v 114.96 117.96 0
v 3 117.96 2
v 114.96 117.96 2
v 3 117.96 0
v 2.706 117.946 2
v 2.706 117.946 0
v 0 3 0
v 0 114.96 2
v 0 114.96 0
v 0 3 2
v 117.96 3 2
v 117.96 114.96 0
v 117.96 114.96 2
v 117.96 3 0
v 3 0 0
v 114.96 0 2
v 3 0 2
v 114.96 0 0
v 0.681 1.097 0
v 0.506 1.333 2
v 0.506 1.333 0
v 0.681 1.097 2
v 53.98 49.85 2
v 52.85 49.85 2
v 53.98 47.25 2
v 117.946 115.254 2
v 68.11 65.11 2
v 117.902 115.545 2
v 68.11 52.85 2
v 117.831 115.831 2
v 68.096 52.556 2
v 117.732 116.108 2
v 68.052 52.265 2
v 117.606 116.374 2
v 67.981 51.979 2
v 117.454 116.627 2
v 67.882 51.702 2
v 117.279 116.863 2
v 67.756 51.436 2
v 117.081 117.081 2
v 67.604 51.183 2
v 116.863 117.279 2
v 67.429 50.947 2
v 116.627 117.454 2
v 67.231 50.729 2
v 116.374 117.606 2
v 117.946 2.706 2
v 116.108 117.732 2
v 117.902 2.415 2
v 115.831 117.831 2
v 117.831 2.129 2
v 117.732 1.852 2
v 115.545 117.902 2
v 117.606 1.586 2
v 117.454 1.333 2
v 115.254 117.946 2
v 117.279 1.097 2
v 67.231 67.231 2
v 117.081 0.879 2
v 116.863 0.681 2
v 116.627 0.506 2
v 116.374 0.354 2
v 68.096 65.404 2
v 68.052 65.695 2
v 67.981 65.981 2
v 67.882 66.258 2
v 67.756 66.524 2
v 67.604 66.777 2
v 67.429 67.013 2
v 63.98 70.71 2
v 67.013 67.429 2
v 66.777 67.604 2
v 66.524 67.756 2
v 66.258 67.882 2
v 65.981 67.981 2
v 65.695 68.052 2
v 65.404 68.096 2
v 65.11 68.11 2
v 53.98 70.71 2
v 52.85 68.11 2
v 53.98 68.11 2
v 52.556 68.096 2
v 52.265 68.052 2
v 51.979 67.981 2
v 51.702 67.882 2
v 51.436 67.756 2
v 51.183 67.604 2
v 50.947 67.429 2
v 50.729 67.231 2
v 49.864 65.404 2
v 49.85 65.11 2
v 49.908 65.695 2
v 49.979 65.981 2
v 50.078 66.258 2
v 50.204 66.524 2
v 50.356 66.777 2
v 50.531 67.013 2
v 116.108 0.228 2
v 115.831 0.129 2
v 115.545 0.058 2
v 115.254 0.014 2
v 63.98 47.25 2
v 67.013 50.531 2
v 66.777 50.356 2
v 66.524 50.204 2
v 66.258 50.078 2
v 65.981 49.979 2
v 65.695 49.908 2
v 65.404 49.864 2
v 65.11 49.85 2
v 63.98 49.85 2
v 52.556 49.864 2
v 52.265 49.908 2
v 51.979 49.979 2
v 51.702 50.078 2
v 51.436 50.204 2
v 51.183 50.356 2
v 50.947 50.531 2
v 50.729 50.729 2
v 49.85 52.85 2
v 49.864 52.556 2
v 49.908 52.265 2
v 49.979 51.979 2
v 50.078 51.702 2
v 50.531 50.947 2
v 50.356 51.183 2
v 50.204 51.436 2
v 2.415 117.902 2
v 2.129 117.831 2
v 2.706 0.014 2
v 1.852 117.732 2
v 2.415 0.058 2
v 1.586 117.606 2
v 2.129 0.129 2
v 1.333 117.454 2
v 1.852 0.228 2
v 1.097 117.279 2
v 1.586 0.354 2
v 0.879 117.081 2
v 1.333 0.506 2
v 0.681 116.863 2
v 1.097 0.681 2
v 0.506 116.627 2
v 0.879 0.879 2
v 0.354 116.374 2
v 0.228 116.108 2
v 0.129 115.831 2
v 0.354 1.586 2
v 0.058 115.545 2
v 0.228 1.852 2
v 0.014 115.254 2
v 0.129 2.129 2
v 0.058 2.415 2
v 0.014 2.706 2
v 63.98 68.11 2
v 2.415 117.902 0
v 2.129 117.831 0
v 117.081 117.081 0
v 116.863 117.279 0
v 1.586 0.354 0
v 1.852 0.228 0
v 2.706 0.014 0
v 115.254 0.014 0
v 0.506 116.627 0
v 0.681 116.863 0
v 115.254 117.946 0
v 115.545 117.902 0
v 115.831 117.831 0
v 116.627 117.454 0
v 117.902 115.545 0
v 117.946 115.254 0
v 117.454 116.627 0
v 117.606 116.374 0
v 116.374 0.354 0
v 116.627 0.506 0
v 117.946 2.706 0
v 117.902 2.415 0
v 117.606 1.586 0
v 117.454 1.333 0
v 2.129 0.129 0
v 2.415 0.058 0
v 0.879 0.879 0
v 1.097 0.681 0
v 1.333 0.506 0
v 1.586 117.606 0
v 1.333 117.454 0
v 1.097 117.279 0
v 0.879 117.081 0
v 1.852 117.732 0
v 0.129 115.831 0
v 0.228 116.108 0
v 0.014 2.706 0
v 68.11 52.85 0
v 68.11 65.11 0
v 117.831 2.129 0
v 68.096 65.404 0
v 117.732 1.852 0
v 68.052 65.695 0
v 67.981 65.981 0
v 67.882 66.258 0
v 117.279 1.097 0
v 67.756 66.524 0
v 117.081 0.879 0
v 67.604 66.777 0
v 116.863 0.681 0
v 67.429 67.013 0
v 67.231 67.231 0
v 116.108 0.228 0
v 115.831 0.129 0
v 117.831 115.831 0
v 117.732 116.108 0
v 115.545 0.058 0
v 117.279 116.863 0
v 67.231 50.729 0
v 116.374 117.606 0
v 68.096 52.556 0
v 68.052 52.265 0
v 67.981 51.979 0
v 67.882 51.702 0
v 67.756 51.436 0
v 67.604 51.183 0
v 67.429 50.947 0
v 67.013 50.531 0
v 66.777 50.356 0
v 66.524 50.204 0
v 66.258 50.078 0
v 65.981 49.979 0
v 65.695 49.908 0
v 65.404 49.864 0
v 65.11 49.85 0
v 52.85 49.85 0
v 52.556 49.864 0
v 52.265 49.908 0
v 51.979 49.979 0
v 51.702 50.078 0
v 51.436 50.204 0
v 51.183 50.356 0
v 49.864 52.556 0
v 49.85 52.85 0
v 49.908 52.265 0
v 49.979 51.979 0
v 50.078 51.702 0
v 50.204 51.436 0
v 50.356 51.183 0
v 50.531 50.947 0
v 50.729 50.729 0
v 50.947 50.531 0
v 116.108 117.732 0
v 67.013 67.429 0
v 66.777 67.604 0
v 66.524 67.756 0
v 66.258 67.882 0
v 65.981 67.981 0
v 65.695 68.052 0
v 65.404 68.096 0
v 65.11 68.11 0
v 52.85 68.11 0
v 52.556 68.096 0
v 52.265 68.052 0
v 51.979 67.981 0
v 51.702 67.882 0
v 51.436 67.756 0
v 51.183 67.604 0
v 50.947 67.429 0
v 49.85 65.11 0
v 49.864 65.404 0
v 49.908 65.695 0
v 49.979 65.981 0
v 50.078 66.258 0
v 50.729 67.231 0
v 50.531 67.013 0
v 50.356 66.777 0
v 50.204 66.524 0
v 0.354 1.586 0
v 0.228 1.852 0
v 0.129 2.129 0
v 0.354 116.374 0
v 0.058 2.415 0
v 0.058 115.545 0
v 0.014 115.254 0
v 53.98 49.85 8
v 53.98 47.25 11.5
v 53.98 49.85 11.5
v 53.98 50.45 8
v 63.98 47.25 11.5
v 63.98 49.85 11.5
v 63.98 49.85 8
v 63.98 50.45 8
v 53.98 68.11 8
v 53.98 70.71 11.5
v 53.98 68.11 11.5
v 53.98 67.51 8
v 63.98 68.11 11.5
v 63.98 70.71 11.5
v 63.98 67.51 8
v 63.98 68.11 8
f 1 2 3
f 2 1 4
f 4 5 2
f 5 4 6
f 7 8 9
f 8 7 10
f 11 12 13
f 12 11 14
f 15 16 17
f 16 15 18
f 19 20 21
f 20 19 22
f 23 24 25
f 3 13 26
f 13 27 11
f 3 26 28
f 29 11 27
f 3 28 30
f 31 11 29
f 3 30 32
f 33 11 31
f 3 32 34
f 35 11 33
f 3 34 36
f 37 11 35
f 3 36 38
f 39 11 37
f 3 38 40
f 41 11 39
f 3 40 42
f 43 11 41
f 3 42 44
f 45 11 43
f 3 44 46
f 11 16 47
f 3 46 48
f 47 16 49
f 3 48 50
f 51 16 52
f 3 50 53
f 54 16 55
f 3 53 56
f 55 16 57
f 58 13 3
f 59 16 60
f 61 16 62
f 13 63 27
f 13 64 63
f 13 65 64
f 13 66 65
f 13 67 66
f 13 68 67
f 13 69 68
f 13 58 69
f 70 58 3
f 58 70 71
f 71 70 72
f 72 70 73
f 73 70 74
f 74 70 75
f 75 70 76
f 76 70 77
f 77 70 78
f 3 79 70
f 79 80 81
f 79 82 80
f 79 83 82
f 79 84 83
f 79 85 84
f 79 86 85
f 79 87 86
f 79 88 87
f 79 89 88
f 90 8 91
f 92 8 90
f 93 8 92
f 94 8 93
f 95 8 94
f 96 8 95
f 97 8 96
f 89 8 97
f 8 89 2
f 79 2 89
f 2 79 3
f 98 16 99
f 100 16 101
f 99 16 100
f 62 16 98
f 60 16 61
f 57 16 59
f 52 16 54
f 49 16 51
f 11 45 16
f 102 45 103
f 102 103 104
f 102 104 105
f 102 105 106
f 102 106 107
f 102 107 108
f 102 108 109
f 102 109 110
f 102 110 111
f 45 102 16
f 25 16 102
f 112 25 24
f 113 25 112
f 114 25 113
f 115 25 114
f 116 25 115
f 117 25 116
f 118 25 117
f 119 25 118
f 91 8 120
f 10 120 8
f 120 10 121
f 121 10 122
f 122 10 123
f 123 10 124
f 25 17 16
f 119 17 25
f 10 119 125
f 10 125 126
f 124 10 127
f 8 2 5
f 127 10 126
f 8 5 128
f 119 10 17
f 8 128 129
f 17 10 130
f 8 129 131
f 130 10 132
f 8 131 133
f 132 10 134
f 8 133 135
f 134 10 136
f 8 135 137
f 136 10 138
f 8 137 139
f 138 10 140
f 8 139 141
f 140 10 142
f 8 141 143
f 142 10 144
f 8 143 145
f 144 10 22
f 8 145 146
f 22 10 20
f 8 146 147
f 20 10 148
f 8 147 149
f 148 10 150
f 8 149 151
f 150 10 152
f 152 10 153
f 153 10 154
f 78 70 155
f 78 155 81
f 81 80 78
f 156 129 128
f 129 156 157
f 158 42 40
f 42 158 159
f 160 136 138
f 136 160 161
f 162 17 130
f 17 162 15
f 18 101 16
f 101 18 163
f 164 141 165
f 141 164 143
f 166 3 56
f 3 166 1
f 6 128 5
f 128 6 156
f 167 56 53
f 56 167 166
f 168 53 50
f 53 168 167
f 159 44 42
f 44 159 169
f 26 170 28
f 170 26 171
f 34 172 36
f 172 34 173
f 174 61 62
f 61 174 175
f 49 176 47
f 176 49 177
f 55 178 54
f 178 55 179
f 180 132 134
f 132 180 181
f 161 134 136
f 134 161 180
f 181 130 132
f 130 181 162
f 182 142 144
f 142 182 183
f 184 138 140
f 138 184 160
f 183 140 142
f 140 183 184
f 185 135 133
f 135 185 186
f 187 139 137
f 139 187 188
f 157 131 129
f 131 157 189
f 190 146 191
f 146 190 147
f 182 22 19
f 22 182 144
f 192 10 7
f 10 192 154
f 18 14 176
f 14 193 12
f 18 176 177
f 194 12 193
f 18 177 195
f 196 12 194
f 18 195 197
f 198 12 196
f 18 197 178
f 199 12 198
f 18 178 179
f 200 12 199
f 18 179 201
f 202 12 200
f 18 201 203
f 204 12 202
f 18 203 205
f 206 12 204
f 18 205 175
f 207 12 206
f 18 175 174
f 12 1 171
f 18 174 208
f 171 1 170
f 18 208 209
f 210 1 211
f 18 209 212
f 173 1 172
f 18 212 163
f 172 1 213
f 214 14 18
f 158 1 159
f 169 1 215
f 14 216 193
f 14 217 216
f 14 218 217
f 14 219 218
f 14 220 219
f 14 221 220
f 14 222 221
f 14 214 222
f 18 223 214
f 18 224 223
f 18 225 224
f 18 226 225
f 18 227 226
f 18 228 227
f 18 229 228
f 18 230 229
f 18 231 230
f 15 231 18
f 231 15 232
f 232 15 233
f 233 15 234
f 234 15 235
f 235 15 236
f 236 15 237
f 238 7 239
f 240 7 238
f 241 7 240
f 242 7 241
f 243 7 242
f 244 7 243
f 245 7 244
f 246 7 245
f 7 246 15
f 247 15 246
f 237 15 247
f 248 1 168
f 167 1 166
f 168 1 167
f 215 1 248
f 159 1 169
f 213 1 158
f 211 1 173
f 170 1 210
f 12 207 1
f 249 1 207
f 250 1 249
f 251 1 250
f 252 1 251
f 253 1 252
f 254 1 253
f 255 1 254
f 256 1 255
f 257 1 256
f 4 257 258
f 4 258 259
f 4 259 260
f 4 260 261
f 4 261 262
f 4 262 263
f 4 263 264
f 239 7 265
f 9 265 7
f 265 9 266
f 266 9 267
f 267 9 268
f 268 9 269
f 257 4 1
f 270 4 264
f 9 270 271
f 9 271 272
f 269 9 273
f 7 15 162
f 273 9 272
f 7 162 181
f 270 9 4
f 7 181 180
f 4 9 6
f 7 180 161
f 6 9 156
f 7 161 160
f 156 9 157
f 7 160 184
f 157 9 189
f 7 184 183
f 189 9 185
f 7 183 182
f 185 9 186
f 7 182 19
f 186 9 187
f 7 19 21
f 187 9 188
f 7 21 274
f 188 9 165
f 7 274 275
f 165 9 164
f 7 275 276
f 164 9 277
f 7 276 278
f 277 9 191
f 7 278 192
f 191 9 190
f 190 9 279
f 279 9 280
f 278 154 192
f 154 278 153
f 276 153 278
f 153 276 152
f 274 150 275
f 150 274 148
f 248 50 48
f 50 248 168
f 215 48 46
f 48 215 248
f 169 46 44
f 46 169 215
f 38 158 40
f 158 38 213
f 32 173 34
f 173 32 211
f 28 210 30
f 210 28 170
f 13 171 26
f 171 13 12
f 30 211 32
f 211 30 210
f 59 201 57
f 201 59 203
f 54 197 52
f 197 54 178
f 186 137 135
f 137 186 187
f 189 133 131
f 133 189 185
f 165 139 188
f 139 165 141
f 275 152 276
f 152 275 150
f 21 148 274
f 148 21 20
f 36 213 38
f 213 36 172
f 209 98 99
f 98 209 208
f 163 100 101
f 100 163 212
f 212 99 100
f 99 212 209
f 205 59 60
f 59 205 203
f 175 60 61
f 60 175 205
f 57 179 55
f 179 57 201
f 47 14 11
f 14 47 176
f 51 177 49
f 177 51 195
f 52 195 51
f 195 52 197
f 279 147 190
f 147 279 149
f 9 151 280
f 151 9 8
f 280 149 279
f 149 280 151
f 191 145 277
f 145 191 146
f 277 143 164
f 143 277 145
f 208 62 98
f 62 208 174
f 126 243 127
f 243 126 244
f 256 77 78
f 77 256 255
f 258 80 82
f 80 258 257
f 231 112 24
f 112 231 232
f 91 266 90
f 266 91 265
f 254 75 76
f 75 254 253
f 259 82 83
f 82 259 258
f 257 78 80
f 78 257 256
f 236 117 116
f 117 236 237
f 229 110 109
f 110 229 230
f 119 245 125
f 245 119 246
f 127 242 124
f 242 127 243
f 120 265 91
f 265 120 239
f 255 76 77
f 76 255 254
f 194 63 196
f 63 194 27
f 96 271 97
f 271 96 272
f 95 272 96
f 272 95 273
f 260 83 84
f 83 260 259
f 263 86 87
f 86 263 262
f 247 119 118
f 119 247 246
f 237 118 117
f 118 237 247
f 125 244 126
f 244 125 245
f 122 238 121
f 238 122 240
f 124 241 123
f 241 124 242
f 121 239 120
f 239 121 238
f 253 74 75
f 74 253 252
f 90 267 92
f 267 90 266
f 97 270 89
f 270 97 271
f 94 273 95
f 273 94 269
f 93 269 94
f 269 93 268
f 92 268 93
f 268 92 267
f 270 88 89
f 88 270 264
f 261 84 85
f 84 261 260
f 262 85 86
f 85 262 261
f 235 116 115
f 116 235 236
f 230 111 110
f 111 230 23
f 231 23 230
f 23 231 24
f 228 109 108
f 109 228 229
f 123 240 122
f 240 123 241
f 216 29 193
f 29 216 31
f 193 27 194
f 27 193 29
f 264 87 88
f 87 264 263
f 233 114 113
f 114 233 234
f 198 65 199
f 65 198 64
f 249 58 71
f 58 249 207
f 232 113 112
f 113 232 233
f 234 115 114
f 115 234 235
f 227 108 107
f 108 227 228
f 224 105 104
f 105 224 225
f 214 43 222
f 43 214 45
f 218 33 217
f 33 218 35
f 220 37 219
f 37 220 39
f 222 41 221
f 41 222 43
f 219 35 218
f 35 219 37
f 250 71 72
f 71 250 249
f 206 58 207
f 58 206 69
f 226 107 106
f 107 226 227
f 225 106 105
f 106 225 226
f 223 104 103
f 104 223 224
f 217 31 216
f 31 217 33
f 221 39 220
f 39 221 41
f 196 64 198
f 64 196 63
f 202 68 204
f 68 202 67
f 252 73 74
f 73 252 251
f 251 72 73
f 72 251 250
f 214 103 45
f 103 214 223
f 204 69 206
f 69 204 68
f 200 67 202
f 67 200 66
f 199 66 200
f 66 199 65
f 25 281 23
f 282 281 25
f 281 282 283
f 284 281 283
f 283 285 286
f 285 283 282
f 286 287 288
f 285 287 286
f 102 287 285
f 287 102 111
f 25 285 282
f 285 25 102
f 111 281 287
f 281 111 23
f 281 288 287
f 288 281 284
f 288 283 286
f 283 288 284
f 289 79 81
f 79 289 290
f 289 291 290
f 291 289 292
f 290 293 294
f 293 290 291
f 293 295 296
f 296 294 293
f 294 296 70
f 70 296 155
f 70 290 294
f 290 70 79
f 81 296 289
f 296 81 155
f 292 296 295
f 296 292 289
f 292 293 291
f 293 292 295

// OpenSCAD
// file: ptfe-port-printer-tent-config.scad
// PTFE 4-Tube Passthrough Port — Shared Configuration

// Performance
preview = false;
$fn = preview ? 32 : 64;

// PTFE tube dimensions (standard 1.75mm filament tube)
ptfe_od       = 4.0;   // outer diameter of PTFE tube
// Slight undersize bore grips tube; filament through stop plate helps retention when crimped
ptfe_clearance = -0.02;  // per side: negative = interference on OD (tune for your printer/filament)
hole_dia      = ptfe_od + ptfe_clearance * 2;

// Tube layout — 2x2 grid
tubes     = 4;
cols      = 2;
rows      = 2;
spacing   = 10;  // center-to-center distance between tubes

// Body dimensions
wall       = 2.0;  // minimum wall around outermost holes
gap        = 1.0;  // space between flanges for tent fabric

// Flange dimensions
flange_thick = 2.0;
flange_extra = 50.0; // extension beyond body each side (+50% vs 4 mm for canvas stability)
collar_clearance = 0.15; // clearance per side for collar fit around shaft
collar_scale     = 1;    // 1 = collar face matches flange footprint for even canvas support

// Derived
grid_w = (cols - 1) * spacing;
grid_h = (rows - 1) * spacing;
body_w = grid_w + hole_dia + wall * 2;
body_h = grid_h + hole_dia + wall * 2;
flange_w = body_w + flange_extra * 2;
flange_h = body_h + flange_extra * 2;
collar_w = flange_w * collar_scale;
collar_h = flange_h * collar_scale;
corner_r = 3;

// Snap-fit clip dimensions
clip_width = spacing;        // width of each clip (distance between two holes)
clip_thick = 2.6;            // tab thickness (doubled for stronger retention)
lip_height = 3.5;            // barb height (catch edge)
lip_depth  = 0.6;            // barb protrusion beyond clip face (PLA-safe)
barb_shelf_offset_z = 3;     // shifts barb/catch shelf +Z along tab (toward flange outer face)
clip_reach = gap + flange_thick + lip_height + barb_shelf_offset_z; // tab through gap + flange + barb
clip_clearance = 0.2;        // clearance around clip in the flange slot

// PTFE tube socket depth — how far tubes insert past stop plate
socket_depth_top    = 5.0;   // top (flange side) shaft socket
socket_depth_bottom = 10.0;   // bottom (opposite side) shaft socket

// Stop plate — PTFE tube shoulder at top of shaft
stop_thick    = 1.0;         // thin plate thickness
filament_dia  = 2.0;         // filament passthrough hole (1.75mm filament + clearance)

module rounded_rect(w, h, depth, r) {
    translate([r, r, 0])
        minkowski() {
            cube([w - 2 * r, h - 2 * r, depth / 2]);
            cylinder(h = depth / 2, r = r);
        }
}

module tube_holes(depth) {
    for (c = [0 : cols - 1])
        for (r = [0 : rows - 1])
            translate([
                wall + hole_dia / 2 + c * spacing,
                wall + hole_dia / 2 + r * spacing,
                -1
            ])
                cylinder(h = depth + 2, d = hole_dia);
}
// main file
// PTFE Port — Collar: wraps the shaft and clamps against tent fabric
// Includes snap-fit clips that lock through slots in the shaft flange.
include <ptfe-port-printer-tent-config.scad>

module ptfe_port_collar() {
    shaft_w = body_w + collar_clearance * 2;
    shaft_h = body_h + collar_clearance * 2;
    hole_y_min = (flange_h - shaft_h) / 2;
    hole_y_max = (flange_h + shaft_h) / 2;

    clip_x = (flange_w - clip_width) / 2;

    union() {
        difference() {
            // Outer body — matches flange outer diameter
            rounded_rect(flange_w, flange_h, flange_thick, corner_r);

            // Hole sized to the shaft (body + clearance)
            translate([(flange_w - shaft_w) / 2, hole_y_min, -1])
                rounded_rect(shaft_w, shaft_h, flange_thick + 2, corner_r);
        }

        // Front clip — tab in collar material, flush with inner edge, barb faces inward (+Y)
        translate([clip_x, hole_y_min - clip_thick, flange_thick])
            snap_clip();

        // Back clip — tab in collar material, flush with inner edge, barb faces inward (-Y)
        translate([clip_x, hole_y_max + clip_thick, flange_thick])
            mirror([0, 1, 0])
                snap_clip();
    }
}

module snap_clip() {
    // Tab: thin flexible arm
    cube([clip_width, clip_thick, clip_reach]);

    // Barb — triangular prism: ramps from flush at top to full lip_depth at bottom
    // so the clip slides past the flange on insertion, then catches on removal
    translate([0, clip_thick, clip_reach - lip_height])
        rotate([90, 0, 90])
            linear_extrude(height = clip_width)
                polygon([
                    [0, 0],            // top of barb, flush with tab
                    [lip_depth, 0],    // top of barb, full protrusion
                    [0, lip_height]    // bottom catch edge, flush with tab
                ]);
}

ptfe_port_collar();
